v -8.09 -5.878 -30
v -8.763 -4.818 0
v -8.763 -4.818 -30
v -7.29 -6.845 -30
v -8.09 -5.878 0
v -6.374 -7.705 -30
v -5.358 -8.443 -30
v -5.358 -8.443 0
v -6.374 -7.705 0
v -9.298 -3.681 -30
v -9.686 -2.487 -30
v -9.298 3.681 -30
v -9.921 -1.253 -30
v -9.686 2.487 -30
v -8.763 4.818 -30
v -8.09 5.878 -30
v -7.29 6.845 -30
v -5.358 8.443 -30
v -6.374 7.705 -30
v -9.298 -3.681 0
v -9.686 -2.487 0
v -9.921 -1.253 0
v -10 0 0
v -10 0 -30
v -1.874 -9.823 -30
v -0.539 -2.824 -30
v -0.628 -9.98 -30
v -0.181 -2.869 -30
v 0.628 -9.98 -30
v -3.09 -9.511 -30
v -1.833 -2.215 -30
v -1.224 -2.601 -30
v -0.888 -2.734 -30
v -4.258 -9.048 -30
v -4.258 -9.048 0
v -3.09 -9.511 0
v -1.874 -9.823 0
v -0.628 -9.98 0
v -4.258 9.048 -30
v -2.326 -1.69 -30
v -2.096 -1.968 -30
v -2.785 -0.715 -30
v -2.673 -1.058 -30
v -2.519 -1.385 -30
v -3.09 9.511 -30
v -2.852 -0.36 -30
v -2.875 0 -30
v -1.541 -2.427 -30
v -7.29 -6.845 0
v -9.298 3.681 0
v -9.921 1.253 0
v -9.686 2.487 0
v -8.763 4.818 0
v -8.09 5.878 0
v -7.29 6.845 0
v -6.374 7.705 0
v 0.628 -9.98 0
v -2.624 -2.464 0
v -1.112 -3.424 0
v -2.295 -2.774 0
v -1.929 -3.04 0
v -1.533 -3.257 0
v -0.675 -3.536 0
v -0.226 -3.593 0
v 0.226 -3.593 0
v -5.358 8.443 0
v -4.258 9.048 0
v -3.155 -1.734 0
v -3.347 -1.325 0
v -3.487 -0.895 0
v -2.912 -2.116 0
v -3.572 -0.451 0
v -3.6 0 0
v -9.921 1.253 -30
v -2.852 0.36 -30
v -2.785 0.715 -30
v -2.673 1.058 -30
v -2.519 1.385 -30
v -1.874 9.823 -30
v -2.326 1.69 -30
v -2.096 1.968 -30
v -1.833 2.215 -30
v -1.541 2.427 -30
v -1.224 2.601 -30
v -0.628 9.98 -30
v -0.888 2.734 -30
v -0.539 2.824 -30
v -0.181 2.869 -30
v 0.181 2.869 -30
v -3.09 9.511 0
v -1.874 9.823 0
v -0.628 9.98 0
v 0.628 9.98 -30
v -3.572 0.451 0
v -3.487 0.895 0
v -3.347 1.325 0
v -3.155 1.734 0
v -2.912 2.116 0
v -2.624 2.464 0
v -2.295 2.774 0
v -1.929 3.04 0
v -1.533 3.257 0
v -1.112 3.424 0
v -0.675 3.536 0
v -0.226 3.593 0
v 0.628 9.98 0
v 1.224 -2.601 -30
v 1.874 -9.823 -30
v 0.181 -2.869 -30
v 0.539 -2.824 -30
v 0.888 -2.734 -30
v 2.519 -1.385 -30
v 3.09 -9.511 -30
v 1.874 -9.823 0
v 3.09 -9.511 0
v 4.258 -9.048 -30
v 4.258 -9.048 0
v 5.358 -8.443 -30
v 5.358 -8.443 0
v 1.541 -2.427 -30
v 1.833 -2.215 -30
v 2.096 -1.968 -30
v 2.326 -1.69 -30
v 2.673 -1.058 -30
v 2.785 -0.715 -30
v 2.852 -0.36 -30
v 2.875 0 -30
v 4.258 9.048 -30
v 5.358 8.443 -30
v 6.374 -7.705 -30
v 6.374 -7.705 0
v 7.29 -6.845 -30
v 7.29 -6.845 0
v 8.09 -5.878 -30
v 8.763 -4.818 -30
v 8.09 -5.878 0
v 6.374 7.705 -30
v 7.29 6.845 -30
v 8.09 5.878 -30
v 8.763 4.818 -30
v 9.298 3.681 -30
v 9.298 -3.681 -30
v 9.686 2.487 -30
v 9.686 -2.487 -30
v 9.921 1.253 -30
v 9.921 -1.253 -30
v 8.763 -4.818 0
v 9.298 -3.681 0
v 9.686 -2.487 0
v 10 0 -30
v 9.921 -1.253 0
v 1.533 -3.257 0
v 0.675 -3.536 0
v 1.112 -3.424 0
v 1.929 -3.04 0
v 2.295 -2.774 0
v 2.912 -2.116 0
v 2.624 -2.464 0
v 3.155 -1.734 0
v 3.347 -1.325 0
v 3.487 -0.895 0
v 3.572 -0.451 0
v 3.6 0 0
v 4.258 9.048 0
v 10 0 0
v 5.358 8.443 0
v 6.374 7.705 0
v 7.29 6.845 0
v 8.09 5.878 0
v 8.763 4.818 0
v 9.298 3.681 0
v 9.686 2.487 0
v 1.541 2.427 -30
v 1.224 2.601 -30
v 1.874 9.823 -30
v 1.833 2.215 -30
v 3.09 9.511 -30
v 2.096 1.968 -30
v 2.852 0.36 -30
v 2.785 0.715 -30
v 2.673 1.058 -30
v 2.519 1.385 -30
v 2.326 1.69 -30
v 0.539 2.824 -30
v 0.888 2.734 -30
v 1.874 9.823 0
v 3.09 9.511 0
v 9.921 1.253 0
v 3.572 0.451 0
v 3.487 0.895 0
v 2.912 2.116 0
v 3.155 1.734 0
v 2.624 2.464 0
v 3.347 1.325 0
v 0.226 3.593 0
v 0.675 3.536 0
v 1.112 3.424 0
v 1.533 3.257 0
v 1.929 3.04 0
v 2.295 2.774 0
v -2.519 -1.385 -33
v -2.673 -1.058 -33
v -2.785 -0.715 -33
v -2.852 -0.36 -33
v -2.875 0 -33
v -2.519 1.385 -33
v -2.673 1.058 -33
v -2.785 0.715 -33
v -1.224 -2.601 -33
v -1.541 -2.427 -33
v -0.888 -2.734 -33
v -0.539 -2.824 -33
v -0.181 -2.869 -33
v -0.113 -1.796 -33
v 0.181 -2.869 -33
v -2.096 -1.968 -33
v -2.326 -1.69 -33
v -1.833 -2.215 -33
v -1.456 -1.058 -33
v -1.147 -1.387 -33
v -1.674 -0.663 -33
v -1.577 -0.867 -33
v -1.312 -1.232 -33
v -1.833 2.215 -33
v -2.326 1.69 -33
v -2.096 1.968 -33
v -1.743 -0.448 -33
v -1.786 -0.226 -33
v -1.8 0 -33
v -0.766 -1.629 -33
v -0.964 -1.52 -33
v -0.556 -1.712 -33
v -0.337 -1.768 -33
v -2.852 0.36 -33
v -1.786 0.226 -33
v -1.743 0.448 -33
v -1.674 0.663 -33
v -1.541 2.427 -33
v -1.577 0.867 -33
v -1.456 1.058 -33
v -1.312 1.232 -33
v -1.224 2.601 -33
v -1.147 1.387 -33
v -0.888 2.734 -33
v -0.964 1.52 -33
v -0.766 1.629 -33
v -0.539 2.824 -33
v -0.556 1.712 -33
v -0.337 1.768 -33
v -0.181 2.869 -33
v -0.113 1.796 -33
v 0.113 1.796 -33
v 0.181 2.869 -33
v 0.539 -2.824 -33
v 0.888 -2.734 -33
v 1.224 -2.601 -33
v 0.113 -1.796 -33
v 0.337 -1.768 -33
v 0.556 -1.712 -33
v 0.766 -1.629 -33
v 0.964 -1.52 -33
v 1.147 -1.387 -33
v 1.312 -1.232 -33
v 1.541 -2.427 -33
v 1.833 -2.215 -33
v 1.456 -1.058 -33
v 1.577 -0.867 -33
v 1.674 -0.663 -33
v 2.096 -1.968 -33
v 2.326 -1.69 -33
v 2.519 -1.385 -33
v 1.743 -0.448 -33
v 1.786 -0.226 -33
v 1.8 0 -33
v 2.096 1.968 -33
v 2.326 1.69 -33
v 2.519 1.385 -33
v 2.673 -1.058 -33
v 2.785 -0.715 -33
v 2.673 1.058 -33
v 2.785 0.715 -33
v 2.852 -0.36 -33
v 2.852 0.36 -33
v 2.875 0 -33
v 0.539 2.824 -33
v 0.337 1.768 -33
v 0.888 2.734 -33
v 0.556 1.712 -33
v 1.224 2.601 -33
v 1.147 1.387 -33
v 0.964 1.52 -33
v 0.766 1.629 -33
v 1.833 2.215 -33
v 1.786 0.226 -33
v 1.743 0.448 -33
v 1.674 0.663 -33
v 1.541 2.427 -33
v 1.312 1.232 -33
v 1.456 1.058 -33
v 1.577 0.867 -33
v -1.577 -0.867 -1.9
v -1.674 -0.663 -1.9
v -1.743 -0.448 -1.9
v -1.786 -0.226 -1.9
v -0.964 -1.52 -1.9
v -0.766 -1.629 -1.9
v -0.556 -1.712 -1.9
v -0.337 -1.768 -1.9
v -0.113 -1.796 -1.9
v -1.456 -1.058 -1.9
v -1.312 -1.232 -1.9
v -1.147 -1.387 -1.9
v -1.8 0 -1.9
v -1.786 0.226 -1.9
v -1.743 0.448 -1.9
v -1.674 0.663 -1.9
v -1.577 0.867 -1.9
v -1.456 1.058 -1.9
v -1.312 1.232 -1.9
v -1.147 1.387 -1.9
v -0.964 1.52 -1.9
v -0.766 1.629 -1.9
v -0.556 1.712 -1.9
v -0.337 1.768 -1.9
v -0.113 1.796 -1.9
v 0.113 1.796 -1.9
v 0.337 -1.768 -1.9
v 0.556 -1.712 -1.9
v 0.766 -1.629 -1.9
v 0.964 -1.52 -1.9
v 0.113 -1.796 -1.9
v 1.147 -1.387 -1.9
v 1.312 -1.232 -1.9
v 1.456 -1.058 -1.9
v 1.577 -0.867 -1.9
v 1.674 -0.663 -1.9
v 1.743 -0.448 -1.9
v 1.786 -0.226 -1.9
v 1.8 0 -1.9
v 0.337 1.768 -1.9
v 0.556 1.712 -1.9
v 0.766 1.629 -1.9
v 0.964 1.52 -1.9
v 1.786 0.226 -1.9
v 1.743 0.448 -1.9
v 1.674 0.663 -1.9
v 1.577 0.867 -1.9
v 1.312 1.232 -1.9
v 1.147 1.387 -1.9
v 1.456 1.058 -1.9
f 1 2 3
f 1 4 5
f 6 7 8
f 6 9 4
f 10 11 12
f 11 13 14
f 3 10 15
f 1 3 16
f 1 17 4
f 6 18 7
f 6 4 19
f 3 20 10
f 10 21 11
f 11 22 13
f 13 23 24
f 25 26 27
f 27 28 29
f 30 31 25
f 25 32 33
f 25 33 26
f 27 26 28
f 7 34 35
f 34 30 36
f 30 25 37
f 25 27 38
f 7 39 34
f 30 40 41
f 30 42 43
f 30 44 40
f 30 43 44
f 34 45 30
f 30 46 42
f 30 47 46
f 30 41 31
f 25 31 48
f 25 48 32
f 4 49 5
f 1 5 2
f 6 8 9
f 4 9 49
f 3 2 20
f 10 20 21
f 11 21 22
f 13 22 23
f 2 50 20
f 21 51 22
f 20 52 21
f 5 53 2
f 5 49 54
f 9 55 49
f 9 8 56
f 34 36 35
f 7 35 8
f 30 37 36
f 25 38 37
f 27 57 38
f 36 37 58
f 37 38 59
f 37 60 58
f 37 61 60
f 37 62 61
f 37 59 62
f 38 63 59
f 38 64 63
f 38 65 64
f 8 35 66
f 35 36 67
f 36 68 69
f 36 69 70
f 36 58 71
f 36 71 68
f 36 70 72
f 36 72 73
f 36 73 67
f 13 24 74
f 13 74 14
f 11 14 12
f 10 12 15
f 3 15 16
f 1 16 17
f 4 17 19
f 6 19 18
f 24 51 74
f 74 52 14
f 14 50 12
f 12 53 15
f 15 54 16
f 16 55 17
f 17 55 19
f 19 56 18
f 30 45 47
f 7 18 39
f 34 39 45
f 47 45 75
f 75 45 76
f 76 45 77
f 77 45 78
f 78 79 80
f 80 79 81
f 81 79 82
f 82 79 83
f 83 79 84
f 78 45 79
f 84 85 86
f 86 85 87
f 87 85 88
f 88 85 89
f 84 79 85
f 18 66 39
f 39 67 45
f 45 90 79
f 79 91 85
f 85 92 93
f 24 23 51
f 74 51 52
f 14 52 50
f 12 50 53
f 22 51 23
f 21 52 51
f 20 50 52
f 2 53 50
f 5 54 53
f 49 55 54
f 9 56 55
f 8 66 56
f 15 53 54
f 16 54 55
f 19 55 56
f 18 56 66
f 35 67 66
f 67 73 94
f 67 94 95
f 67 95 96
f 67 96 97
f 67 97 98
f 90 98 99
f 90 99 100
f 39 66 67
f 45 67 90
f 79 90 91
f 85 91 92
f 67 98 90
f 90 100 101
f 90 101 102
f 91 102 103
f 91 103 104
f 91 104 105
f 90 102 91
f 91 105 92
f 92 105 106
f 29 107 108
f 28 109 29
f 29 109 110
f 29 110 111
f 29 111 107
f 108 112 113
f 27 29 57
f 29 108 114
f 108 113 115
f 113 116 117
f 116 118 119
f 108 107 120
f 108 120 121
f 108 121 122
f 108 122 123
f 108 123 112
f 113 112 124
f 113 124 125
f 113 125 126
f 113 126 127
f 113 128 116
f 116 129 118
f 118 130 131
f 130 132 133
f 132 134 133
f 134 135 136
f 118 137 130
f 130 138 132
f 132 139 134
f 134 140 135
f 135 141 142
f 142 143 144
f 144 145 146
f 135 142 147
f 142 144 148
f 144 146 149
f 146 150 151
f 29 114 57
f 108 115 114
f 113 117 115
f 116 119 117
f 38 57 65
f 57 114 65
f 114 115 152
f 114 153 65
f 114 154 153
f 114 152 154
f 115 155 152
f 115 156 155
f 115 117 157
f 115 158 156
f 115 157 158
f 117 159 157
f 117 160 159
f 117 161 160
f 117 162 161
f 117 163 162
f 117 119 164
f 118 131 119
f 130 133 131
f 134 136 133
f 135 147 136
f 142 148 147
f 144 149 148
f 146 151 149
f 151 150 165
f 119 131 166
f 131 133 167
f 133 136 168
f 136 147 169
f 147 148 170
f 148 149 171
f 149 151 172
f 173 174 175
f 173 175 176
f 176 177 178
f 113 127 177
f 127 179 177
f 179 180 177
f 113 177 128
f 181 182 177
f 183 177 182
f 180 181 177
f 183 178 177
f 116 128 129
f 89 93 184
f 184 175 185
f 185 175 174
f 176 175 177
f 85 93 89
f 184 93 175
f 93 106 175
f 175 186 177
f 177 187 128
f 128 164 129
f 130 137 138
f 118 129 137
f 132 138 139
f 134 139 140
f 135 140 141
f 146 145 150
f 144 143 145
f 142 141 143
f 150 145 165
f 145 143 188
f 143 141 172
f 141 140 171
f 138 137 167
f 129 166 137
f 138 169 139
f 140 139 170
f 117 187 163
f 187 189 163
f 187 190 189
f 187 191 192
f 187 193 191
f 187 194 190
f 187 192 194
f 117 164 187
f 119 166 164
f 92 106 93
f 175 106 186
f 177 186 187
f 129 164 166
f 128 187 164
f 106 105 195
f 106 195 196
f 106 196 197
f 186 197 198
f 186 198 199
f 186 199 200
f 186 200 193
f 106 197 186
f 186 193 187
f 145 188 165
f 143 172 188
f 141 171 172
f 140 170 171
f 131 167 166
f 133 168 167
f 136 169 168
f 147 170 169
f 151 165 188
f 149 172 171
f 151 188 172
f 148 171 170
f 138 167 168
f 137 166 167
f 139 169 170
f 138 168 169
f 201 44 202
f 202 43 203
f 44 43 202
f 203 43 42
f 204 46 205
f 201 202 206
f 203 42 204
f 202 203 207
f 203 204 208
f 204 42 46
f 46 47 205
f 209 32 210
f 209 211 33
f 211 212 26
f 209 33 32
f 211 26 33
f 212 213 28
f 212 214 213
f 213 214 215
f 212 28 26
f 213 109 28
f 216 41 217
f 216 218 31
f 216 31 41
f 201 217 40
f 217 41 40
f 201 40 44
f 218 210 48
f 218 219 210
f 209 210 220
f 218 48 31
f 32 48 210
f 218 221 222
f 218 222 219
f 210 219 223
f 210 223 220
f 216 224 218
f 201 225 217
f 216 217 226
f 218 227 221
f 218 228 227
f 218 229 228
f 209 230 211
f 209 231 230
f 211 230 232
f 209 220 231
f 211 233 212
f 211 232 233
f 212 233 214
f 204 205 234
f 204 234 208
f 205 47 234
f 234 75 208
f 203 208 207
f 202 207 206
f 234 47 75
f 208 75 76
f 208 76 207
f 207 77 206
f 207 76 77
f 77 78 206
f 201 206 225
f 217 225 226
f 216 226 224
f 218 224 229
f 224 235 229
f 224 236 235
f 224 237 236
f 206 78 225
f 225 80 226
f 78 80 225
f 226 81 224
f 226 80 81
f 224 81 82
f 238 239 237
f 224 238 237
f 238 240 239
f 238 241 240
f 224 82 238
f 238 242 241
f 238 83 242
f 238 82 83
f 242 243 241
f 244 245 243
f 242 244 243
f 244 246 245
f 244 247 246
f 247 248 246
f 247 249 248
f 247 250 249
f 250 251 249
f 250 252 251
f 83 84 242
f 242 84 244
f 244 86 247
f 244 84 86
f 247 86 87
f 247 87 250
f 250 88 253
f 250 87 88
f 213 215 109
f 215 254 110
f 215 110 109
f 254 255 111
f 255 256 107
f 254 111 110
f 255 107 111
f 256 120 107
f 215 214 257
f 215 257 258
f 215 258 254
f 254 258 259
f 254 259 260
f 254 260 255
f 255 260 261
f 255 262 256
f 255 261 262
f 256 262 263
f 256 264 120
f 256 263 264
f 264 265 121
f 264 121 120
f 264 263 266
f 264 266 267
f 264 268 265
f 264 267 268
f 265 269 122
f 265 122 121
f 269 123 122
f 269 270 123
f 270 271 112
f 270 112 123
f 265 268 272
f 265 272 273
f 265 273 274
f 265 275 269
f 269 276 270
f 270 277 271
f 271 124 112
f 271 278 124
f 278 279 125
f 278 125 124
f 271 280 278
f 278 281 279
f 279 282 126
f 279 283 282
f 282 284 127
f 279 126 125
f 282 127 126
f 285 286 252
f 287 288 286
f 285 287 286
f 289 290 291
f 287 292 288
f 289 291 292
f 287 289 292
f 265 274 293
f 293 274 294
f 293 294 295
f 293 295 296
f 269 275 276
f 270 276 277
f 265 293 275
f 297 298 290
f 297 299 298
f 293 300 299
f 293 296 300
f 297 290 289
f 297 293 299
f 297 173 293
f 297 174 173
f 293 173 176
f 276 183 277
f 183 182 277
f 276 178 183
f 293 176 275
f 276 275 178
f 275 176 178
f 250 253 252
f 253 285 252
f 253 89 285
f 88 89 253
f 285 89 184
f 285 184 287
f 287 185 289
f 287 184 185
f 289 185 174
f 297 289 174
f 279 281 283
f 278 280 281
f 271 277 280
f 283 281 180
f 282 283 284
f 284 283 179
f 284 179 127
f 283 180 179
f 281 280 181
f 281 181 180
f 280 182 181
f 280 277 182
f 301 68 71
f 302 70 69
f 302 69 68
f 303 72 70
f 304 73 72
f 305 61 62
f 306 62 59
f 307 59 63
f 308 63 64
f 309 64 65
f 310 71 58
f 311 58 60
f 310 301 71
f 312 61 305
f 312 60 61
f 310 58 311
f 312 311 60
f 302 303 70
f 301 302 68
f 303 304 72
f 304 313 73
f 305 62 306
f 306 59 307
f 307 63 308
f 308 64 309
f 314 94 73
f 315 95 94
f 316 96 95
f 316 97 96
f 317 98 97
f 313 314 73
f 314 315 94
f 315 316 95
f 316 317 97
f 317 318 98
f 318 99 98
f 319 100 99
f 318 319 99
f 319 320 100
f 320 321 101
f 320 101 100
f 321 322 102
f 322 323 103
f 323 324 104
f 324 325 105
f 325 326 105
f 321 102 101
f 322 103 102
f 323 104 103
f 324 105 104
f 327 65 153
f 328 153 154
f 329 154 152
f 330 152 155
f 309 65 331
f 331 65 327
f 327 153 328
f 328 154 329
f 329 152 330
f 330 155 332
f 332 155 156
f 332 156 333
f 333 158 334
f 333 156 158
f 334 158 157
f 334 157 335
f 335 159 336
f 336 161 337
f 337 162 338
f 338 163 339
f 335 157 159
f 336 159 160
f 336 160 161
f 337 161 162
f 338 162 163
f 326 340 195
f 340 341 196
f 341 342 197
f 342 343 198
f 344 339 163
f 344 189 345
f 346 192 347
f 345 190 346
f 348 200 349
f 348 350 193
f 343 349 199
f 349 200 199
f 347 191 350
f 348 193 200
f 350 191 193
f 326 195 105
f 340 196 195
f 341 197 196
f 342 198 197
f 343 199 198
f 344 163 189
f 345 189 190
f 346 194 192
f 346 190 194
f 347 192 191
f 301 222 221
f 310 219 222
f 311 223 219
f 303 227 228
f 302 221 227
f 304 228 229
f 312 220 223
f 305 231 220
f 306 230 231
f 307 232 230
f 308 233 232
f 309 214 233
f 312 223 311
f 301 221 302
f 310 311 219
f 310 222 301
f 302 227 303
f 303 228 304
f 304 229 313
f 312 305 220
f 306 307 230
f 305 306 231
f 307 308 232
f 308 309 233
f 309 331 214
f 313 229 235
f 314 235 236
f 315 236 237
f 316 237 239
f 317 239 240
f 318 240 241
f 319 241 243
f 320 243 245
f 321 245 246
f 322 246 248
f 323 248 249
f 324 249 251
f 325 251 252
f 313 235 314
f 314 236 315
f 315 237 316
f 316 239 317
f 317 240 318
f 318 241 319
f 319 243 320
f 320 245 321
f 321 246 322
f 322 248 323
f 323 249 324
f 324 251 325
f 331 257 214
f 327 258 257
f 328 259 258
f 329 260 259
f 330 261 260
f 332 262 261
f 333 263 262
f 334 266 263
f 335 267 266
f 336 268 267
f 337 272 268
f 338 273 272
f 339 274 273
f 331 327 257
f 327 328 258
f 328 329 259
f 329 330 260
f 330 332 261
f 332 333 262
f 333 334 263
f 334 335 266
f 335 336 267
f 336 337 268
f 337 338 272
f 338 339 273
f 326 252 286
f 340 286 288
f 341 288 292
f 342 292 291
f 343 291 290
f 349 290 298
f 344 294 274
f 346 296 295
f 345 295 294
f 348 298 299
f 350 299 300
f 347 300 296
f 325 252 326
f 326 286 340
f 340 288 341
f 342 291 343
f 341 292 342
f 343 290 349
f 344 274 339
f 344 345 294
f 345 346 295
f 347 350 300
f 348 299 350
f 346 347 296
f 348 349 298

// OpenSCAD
$fn = 50;

difference() {
	union() {
		translate(v = [0, 0, -30.0]) {
			cylinder(h = 30, r = 10.0);
		}
		#translate(v = [0, 0, -33.0]) {
			cylinder(h = 33, r = 2.875);
		}
	}
	union() {
		translate(v = [0, 0, 0]) {
			rotate(a = [0, 0, 0]) {
				difference() {
					union() {
						translate(v = [0, 0, -33.0]) {
							cylinder(h = 33, r = 1.5);
						}
						translate(v = [0, 0, -1.9]) {
							cylinder(h = 1.9, r1 = 1.8, r2 = 3.6);
						}
						translate(v = [0, 0, -33.0]) {
							cylinder(h = 33, r = 1.8);
						}
						translate(v = [0, 0, -33.0]) {
							cylinder(h = 33, r = 1.5);
						}
					}
					union();
				}
			}
		}
	}
}
